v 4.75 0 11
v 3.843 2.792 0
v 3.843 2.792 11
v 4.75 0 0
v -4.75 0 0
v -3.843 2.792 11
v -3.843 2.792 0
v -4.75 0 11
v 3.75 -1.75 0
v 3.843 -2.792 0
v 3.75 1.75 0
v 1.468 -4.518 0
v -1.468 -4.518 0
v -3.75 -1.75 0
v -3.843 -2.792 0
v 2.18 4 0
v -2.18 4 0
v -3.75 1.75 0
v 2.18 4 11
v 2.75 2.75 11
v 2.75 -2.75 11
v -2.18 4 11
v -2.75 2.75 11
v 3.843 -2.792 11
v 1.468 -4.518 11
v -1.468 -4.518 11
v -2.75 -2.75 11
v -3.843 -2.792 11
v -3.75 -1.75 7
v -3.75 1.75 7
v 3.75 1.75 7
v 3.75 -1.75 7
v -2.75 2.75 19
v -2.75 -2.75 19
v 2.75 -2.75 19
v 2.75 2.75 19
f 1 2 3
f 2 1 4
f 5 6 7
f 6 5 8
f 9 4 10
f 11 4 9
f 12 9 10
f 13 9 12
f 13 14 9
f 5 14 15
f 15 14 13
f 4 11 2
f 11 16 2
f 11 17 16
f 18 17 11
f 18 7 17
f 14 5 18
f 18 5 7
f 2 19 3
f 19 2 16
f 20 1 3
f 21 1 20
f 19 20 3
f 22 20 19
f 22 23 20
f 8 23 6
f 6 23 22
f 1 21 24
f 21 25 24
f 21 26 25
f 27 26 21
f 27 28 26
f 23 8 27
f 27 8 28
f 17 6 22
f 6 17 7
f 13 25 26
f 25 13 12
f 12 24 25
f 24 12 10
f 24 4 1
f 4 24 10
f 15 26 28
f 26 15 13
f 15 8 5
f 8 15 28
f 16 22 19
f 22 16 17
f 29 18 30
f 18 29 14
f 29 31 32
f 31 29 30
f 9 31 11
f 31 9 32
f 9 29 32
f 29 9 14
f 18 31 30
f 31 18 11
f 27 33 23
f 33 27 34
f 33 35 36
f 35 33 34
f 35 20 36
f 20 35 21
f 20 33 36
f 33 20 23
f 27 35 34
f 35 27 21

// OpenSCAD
difference() {
    $fn = 10;
    cylinder(h = 11, d = 9.5);

    translate([-5, 4, -0.5])
    cube([10, 10, 12]);

    translate([-7.5/2, -3.5/2, -1])
    cube([7.5, 3.5, 8]);
}

translate([-5.5/2, -5.5/2, 11])
cube([5.5, 5.5, 8]);
